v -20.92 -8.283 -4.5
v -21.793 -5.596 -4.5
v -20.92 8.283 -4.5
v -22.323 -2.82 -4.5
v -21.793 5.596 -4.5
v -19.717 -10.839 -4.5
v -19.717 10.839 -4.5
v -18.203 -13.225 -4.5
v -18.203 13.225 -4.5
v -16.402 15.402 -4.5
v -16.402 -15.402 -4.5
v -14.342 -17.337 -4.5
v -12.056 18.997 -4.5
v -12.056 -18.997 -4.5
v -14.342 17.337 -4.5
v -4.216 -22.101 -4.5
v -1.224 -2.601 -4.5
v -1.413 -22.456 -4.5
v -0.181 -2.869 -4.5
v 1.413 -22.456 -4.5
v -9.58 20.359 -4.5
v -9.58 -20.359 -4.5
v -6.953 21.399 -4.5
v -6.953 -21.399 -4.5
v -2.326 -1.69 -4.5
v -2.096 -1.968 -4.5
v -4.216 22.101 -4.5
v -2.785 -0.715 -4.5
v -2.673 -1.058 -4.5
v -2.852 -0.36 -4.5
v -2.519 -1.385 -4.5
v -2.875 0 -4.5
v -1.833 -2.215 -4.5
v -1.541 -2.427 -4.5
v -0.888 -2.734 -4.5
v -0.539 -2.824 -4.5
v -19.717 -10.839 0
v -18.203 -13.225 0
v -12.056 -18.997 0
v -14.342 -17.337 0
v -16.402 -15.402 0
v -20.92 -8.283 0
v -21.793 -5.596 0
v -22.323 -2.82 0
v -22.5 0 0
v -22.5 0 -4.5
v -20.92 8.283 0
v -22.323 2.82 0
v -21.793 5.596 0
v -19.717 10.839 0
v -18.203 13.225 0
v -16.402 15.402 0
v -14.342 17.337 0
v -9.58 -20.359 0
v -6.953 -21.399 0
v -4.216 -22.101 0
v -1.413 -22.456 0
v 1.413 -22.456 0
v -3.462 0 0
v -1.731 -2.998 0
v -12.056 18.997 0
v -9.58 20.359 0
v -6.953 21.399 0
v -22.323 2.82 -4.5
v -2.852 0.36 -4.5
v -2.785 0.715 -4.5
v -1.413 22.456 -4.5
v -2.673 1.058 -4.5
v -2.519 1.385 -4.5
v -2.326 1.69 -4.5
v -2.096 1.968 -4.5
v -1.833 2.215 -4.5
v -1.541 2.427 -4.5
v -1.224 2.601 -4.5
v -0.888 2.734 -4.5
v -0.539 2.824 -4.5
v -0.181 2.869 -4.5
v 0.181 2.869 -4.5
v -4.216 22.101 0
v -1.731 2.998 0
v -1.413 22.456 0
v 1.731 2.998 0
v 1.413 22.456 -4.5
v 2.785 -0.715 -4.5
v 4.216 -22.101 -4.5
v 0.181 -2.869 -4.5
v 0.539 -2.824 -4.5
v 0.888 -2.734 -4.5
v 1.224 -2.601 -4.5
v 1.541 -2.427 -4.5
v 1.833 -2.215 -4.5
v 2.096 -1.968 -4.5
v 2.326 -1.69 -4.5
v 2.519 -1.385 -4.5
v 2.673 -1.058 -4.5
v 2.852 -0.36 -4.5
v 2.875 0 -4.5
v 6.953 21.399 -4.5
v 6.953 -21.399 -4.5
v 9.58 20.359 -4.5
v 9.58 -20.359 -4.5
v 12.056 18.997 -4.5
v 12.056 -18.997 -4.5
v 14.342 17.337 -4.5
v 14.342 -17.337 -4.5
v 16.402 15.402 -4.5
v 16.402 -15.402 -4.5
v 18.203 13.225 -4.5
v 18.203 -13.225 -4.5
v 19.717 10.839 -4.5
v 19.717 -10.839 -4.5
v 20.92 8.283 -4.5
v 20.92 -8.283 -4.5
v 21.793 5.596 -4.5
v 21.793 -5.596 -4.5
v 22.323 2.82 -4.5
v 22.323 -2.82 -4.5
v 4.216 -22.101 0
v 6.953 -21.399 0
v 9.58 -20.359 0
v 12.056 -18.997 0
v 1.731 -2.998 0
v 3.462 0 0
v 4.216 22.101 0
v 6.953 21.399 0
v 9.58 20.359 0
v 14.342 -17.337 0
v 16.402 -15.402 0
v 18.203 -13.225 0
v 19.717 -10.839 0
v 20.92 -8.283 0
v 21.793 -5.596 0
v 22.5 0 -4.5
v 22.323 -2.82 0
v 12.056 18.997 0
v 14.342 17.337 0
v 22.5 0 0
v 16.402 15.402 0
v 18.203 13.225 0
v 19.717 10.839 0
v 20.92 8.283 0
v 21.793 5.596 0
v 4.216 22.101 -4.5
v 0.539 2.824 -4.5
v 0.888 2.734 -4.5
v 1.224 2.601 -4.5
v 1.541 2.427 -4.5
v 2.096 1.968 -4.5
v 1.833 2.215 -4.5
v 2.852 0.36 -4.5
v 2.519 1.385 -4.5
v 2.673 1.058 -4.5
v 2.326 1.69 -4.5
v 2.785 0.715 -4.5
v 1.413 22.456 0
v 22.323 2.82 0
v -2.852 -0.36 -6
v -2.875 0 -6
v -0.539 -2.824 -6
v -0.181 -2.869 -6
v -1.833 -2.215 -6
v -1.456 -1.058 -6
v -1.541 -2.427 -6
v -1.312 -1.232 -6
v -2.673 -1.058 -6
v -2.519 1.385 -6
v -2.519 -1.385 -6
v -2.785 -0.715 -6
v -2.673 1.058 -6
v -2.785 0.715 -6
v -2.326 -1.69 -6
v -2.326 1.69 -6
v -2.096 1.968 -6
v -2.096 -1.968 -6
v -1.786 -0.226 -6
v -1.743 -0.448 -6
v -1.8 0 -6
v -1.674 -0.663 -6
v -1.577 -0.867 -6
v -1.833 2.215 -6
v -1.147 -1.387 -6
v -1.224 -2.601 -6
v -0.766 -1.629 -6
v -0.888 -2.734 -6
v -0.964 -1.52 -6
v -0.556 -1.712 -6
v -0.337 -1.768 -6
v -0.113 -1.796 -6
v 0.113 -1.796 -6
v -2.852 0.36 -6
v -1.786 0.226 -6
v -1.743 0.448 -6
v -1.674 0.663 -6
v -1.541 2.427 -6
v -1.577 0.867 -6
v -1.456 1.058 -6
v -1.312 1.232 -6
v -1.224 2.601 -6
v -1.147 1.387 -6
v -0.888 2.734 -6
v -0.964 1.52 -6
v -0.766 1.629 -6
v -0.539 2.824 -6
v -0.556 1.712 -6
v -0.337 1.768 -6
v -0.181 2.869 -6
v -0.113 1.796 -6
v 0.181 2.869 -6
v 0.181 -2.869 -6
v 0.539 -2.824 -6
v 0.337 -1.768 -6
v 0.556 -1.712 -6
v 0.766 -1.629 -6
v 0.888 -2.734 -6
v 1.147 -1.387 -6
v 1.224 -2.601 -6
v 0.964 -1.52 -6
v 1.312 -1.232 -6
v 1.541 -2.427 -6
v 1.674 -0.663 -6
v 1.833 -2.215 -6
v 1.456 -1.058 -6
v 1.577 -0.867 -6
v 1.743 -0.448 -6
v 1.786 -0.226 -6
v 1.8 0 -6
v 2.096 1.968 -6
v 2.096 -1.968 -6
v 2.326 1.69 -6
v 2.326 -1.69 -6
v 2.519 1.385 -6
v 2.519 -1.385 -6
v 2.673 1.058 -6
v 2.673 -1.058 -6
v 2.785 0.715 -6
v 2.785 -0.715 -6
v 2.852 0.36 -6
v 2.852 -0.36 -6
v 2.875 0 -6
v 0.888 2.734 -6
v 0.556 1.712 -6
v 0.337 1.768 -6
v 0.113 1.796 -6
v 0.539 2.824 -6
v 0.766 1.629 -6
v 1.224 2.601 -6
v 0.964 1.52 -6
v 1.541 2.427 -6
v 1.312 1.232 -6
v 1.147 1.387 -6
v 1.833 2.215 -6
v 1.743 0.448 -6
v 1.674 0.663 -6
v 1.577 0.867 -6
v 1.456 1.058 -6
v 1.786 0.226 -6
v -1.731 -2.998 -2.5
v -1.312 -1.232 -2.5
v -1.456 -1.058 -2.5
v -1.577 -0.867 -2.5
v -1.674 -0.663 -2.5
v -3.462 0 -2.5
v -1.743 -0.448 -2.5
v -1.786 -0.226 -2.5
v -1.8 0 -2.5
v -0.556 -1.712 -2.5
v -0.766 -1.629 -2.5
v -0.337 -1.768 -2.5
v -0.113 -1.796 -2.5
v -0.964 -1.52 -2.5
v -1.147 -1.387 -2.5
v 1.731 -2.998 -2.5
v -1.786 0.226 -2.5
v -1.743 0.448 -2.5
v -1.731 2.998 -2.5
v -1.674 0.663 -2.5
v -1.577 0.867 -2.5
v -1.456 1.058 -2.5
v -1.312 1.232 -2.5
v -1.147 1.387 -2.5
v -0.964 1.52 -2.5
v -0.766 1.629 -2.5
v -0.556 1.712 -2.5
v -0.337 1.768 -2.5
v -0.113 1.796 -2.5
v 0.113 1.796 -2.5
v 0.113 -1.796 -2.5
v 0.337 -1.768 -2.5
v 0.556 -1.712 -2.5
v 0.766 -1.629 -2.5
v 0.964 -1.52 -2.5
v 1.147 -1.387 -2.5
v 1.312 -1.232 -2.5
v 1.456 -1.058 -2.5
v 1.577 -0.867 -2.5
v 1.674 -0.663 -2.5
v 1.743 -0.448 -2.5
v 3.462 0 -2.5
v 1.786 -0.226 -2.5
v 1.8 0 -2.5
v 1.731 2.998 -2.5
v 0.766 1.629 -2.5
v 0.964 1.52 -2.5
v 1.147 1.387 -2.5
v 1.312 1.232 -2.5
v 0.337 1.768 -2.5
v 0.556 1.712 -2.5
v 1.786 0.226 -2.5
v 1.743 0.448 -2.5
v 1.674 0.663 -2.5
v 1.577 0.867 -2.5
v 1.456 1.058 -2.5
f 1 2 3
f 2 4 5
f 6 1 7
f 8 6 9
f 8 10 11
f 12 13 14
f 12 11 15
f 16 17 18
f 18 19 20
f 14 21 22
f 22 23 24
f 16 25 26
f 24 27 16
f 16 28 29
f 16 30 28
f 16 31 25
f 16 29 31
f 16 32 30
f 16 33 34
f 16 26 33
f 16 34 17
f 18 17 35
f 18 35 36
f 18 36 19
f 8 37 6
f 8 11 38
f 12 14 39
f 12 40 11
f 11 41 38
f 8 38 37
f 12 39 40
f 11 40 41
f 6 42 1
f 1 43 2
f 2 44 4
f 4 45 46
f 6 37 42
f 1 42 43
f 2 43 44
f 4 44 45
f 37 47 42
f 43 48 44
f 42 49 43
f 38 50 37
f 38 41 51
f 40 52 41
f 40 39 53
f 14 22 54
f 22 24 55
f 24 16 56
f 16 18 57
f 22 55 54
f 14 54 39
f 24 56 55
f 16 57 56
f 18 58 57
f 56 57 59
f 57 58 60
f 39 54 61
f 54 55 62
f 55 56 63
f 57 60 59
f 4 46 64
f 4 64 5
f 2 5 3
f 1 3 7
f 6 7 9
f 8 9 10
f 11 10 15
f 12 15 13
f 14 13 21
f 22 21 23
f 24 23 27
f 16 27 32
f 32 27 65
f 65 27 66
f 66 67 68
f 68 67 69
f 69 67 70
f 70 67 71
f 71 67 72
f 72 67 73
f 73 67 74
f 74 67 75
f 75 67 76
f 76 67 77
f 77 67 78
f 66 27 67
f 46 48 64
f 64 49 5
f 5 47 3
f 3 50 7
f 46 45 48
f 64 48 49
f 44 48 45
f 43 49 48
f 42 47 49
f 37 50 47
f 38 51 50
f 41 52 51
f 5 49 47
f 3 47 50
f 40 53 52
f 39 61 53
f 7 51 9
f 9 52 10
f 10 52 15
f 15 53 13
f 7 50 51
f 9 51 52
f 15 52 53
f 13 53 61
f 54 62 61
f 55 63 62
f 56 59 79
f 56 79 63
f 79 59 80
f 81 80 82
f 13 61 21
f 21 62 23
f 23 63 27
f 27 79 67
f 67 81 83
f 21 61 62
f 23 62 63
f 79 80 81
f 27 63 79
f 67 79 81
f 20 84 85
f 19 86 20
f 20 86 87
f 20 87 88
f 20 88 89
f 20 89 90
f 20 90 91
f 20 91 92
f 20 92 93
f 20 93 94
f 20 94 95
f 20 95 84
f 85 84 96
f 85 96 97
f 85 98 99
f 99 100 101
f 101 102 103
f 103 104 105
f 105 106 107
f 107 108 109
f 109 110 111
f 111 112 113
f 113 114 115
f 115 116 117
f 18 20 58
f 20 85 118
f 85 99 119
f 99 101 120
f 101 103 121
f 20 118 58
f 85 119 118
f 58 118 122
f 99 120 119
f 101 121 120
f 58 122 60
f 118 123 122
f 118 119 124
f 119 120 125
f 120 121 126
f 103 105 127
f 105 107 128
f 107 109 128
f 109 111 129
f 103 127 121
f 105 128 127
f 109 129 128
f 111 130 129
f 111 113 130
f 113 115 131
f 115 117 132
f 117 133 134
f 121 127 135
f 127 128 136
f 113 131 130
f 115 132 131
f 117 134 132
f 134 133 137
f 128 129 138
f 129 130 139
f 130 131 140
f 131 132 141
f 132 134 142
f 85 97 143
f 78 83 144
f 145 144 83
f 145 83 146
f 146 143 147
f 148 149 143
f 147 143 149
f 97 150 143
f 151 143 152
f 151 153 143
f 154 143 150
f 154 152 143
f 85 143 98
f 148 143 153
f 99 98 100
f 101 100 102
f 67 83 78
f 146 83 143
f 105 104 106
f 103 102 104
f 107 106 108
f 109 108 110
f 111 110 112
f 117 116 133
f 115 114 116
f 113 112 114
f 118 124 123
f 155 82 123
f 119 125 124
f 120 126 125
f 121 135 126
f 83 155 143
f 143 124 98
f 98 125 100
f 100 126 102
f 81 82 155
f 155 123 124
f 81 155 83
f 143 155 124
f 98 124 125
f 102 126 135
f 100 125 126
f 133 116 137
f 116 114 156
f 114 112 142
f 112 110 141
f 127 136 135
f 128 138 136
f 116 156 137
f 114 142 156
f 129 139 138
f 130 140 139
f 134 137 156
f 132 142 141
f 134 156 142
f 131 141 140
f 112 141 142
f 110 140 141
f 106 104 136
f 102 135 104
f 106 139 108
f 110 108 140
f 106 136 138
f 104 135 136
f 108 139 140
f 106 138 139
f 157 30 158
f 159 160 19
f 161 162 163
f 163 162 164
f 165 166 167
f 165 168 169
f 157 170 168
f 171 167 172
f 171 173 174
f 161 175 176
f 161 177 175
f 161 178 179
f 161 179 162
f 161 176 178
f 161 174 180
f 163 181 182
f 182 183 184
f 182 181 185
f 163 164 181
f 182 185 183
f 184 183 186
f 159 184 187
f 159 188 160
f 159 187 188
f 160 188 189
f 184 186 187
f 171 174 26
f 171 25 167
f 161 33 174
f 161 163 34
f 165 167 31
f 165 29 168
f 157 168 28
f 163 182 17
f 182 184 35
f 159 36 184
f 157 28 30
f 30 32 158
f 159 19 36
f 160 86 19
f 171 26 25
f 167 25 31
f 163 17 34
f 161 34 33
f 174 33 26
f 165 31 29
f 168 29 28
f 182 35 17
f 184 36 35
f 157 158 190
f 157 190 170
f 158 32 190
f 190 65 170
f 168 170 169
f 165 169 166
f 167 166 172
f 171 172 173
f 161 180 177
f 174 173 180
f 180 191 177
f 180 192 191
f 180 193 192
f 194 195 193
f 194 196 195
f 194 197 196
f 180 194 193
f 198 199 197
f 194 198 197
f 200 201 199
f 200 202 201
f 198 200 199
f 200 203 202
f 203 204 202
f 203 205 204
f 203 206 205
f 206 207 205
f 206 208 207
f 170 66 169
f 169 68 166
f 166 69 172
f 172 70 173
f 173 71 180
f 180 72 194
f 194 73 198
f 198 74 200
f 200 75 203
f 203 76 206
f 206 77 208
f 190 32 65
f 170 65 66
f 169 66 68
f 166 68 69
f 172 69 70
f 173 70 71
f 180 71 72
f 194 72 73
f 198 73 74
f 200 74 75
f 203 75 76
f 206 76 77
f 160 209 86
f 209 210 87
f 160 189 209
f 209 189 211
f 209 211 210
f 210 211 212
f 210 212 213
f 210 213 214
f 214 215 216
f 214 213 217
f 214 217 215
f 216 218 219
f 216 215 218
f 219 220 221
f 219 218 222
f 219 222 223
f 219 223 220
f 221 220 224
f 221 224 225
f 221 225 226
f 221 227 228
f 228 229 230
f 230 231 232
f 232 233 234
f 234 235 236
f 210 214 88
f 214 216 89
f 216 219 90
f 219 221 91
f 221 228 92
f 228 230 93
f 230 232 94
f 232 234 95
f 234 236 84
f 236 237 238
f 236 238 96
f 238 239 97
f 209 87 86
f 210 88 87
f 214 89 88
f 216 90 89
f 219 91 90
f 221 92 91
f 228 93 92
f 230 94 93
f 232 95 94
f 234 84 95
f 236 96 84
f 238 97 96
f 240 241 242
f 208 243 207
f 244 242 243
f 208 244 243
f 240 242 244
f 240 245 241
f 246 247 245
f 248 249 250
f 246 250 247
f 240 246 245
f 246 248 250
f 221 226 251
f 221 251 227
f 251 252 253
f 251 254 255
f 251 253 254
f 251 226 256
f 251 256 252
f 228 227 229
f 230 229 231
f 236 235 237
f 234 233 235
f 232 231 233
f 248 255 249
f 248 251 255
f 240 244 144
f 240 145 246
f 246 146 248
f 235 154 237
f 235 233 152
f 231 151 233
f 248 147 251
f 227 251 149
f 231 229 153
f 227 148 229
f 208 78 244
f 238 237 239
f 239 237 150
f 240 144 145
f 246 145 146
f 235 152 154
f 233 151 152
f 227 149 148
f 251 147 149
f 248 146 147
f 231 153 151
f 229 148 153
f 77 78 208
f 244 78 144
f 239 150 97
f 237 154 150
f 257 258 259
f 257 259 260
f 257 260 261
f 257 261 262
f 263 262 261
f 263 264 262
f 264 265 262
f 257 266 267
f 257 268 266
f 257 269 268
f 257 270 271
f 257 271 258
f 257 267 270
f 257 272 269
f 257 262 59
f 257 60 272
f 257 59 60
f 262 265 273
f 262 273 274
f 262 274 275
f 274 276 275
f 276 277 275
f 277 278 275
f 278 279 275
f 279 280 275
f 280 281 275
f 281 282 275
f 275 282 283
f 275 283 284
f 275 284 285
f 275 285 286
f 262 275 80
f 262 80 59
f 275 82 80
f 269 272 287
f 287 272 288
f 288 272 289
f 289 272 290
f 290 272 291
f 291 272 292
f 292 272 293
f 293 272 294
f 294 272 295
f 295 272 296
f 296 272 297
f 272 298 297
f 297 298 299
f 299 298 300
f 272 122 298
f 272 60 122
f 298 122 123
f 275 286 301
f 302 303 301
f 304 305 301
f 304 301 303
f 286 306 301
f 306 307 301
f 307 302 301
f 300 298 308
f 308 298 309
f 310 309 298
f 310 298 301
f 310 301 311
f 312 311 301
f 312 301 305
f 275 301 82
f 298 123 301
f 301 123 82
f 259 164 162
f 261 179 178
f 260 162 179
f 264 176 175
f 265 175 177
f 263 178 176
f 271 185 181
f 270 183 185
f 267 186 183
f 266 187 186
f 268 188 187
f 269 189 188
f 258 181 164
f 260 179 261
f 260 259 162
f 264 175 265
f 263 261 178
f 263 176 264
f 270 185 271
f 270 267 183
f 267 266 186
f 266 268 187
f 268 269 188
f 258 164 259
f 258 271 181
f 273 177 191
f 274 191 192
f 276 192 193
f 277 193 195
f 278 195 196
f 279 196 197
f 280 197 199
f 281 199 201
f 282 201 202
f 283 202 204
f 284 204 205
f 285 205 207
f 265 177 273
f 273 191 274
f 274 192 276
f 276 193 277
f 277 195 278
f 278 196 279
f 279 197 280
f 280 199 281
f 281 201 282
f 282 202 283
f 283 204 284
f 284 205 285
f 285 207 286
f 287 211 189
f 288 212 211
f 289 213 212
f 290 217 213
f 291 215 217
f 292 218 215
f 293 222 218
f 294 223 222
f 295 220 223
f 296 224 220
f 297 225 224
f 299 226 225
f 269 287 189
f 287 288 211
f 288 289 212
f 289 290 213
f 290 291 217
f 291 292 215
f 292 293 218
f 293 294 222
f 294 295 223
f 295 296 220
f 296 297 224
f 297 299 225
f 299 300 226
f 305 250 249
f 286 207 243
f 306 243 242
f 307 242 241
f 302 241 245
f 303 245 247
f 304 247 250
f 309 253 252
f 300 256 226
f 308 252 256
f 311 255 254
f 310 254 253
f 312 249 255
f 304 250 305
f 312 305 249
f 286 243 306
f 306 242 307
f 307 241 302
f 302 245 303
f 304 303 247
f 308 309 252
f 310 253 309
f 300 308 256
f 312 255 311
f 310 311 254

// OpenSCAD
$fn = 50;

difference() {
	union() {
		translate(v = [0, 0, -4.5]) {
			cylinder(h = 4.5, r = 22.5);
		}
		#translate(v = [0, 0, -6.0]) {
			cylinder(h = 6, r = 2.875);
		}
	}
	union() {
		translate(v = [0, 0, 0]) {
			rotate(a = [0, 0, 0]) {
				difference() {
					union() {
						translate(v = [0, 0, -2.5]) {
							linear_extrude(height = 2.5) {
								polygon(points = [[3.4619999999999997, 0.0], [1.7310000000000003, 2.9981799479017264], [-1.7309999999999992, 2.9981799479017264], [-3.4619999999999997, 4.2397272186481365e-16], [-1.7310000000000014, -2.998179947901726], [1.7309999999999977, -2.9981799479017277]]);
							}
						}
					}
					union();
				}
			}
		}
		#translate(v = [0, 0, -100.0]) {
			cylinder(h = 200, r = 1.8);
		}
	}
}
